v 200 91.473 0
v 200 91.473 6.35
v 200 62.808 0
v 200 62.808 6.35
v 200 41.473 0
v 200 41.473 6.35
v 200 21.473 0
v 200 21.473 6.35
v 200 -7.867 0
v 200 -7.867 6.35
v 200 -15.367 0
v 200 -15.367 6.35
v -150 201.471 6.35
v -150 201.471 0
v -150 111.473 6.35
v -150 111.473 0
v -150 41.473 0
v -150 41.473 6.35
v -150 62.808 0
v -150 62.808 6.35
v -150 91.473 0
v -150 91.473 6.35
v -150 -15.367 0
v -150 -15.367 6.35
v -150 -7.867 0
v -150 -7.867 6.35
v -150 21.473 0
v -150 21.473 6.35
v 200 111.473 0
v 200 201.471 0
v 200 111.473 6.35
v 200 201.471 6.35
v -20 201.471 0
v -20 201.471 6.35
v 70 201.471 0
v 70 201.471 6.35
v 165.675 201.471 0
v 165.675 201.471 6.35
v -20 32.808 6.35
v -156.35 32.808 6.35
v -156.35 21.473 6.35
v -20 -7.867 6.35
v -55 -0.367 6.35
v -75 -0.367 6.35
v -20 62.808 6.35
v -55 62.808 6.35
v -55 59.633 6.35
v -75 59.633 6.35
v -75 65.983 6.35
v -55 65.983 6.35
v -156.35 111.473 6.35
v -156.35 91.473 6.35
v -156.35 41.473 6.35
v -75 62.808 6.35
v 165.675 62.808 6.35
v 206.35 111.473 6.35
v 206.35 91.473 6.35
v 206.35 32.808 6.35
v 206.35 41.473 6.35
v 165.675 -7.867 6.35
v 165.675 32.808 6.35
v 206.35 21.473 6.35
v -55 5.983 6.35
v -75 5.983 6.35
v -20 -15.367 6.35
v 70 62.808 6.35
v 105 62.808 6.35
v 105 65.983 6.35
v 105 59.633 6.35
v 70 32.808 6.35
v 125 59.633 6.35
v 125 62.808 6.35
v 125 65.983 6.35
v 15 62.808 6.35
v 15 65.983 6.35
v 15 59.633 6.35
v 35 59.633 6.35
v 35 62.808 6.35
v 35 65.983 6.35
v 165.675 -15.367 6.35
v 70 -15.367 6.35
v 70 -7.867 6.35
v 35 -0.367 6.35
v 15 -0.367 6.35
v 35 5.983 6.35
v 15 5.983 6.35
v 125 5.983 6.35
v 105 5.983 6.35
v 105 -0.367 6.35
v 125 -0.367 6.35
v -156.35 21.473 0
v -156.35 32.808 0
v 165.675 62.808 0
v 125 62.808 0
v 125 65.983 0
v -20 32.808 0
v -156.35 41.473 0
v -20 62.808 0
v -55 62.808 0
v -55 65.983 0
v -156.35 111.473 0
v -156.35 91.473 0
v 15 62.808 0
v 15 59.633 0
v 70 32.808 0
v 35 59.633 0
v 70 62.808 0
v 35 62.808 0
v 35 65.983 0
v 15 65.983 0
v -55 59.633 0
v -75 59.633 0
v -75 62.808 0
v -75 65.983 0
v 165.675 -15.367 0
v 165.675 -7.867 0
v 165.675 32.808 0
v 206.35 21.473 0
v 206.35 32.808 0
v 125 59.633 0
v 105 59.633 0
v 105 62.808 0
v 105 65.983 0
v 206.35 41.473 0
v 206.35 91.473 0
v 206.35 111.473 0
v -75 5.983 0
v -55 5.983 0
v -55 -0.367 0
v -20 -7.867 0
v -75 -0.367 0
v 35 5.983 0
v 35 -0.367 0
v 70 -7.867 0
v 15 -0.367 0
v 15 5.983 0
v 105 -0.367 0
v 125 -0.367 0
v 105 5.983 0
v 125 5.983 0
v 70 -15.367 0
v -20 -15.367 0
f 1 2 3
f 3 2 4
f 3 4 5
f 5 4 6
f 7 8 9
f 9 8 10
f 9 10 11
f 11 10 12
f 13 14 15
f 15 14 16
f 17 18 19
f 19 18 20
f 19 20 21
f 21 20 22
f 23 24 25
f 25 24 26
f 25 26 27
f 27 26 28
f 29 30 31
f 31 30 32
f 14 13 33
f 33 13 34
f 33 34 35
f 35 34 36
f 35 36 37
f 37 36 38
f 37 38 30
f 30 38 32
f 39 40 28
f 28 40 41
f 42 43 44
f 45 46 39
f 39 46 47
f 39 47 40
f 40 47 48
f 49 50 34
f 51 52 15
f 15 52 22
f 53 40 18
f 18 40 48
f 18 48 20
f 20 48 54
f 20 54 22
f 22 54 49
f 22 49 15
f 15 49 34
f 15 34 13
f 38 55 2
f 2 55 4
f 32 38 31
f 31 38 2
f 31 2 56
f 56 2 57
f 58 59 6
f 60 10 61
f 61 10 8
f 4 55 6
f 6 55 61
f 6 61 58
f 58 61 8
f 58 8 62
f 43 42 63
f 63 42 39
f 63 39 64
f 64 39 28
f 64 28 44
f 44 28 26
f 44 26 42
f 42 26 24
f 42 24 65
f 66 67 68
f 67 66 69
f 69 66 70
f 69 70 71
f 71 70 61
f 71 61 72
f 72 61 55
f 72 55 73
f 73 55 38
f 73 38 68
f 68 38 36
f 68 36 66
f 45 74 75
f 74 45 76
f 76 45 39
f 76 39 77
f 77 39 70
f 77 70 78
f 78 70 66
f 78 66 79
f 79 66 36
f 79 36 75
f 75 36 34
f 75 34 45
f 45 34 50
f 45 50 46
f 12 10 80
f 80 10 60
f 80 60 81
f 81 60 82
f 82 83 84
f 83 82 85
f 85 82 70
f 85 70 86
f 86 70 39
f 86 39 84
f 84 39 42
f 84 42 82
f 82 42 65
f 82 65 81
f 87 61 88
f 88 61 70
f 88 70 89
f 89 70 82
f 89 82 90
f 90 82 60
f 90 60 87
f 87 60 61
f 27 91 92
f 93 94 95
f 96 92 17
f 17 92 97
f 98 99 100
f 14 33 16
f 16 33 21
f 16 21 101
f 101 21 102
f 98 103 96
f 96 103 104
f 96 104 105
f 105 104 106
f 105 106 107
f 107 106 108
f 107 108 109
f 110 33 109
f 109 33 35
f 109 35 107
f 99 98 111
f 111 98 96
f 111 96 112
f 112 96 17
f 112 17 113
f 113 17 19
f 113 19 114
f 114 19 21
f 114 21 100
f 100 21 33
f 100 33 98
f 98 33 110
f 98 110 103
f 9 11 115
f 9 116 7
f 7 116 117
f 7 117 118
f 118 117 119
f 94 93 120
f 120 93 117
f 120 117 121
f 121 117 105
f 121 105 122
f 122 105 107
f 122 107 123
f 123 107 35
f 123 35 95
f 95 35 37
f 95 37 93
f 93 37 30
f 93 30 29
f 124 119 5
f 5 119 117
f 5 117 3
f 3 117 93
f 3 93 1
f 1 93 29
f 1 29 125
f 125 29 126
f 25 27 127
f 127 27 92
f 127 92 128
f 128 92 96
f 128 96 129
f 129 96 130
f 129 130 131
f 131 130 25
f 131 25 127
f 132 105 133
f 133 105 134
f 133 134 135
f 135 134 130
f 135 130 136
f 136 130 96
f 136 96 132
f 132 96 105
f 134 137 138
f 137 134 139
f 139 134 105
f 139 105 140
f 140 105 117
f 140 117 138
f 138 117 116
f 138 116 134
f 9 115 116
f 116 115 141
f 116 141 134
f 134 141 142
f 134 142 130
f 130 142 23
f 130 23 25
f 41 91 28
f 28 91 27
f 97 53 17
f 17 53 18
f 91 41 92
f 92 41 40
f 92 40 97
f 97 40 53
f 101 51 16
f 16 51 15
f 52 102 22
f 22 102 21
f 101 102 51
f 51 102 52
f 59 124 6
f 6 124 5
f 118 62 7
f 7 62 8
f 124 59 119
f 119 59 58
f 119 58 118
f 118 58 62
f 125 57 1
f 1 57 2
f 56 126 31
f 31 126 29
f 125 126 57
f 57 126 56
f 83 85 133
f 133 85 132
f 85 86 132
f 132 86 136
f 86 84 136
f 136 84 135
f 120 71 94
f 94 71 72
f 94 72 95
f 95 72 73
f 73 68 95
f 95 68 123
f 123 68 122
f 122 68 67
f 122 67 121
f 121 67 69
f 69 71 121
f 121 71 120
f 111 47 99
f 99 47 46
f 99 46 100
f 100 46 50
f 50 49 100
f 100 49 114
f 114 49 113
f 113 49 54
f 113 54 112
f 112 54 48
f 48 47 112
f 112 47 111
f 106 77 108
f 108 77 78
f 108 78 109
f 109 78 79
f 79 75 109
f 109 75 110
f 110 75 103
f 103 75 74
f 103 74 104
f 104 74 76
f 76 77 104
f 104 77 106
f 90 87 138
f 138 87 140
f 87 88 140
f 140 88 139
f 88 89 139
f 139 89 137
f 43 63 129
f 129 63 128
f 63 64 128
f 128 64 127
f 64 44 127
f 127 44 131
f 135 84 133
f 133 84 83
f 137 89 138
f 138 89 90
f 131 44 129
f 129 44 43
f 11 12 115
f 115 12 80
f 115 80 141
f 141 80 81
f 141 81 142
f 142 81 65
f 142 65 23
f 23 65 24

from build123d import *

# Parameters (mm, degrees)
CROQUIS1_W              = 350
CROQUIS1_H              = 201.8383275
SALIENTE_EXTRUIR1_DEPTH = 6.35
CROQUIS2_W              = 6.35
CROQUIS2_H              = 20
SALIENTE_EXTRUIR2_DEPTH = 6.35
CROQUIS3_W              = 20
CROQUIS3_H              = 6.35
CORTAR_EXTRUIR1_DEPTH   = 6.35
CROQUIS4_W              = 350
CROQUIS4_H              = 15
SALIENTE_EXTRUIR3_DEPTH = 6.35


with BuildPart() as part:
    # Croquis1 → Saliente-Extruir1 (new body)
    with BuildSketch(Plane.XY):
        with Locations((25, 100.551894806)):
            Rectangle(CROQUIS1_W, CROQUIS1_H)
    extrude(amount=SALIENTE_EXTRUIR1_DEPTH)

    # Croquis2 → Saliente-Extruir2 (add)
    with BuildSketch(Plane.ZY.offset(150)):
        with Locations((3.175, 31.472731056)):
            Rectangle(CROQUIS2_W, CROQUIS2_H)
        with Locations((3.175, 101.472731056)):
            Rectangle(CROQUIS2_W, CROQUIS2_H)
    saliente_extruir2 = extrude(amount=SALIENTE_EXTRUIR2_DEPTH)

    # Simetría1: Saliente-Extruir2 across plane
    add(saliente_extruir2.mirror(Plane(origin=(25, 0, 0), x_dir=(0, 0, 1), z_dir=(1, 0, 0))))

    # Croquis3 → Cortar-Extruir1 (cut)
    with BuildSketch(Plane(origin=(0, 0, 0), x_dir=(-1, 0, 0), z_dir=(0, 0, -1))):
        with Locations((-25, 2.807731056)):
            Rectangle(CROQUIS3_W, CROQUIS3_H)
        with Locations((65, 2.807731056)):
            Rectangle(CROQUIS3_W, CROQUIS3_H)
        with Locations((-115, 2.807731056)):
            Rectangle(CROQUIS3_W, CROQUIS3_H)
        with Locations((-25, 62.807731056)):
            Rectangle(CROQUIS3_W, CROQUIS3_H)
        with Locations((65, 62.807731056)):
            Rectangle(CROQUIS3_W, CROQUIS3_H)
        with Locations((-115, 62.807731056)):
            Rectangle(CROQUIS3_W, CROQUIS3_H)
    extrude(amount=-CORTAR_EXTRUIR1_DEPTH, mode=Mode.SUBTRACT)

    # Croquis4 → Saliente-Extruir3 (add)
    with BuildSketch(Plane.XY.offset(6.35)):
        with Locations((25, -7.867268944)):
            Rectangle(CROQUIS4_W, CROQUIS4_H)
    extrude(amount=-SALIENTE_EXTRUIR3_DEPTH)


solid = part.part
